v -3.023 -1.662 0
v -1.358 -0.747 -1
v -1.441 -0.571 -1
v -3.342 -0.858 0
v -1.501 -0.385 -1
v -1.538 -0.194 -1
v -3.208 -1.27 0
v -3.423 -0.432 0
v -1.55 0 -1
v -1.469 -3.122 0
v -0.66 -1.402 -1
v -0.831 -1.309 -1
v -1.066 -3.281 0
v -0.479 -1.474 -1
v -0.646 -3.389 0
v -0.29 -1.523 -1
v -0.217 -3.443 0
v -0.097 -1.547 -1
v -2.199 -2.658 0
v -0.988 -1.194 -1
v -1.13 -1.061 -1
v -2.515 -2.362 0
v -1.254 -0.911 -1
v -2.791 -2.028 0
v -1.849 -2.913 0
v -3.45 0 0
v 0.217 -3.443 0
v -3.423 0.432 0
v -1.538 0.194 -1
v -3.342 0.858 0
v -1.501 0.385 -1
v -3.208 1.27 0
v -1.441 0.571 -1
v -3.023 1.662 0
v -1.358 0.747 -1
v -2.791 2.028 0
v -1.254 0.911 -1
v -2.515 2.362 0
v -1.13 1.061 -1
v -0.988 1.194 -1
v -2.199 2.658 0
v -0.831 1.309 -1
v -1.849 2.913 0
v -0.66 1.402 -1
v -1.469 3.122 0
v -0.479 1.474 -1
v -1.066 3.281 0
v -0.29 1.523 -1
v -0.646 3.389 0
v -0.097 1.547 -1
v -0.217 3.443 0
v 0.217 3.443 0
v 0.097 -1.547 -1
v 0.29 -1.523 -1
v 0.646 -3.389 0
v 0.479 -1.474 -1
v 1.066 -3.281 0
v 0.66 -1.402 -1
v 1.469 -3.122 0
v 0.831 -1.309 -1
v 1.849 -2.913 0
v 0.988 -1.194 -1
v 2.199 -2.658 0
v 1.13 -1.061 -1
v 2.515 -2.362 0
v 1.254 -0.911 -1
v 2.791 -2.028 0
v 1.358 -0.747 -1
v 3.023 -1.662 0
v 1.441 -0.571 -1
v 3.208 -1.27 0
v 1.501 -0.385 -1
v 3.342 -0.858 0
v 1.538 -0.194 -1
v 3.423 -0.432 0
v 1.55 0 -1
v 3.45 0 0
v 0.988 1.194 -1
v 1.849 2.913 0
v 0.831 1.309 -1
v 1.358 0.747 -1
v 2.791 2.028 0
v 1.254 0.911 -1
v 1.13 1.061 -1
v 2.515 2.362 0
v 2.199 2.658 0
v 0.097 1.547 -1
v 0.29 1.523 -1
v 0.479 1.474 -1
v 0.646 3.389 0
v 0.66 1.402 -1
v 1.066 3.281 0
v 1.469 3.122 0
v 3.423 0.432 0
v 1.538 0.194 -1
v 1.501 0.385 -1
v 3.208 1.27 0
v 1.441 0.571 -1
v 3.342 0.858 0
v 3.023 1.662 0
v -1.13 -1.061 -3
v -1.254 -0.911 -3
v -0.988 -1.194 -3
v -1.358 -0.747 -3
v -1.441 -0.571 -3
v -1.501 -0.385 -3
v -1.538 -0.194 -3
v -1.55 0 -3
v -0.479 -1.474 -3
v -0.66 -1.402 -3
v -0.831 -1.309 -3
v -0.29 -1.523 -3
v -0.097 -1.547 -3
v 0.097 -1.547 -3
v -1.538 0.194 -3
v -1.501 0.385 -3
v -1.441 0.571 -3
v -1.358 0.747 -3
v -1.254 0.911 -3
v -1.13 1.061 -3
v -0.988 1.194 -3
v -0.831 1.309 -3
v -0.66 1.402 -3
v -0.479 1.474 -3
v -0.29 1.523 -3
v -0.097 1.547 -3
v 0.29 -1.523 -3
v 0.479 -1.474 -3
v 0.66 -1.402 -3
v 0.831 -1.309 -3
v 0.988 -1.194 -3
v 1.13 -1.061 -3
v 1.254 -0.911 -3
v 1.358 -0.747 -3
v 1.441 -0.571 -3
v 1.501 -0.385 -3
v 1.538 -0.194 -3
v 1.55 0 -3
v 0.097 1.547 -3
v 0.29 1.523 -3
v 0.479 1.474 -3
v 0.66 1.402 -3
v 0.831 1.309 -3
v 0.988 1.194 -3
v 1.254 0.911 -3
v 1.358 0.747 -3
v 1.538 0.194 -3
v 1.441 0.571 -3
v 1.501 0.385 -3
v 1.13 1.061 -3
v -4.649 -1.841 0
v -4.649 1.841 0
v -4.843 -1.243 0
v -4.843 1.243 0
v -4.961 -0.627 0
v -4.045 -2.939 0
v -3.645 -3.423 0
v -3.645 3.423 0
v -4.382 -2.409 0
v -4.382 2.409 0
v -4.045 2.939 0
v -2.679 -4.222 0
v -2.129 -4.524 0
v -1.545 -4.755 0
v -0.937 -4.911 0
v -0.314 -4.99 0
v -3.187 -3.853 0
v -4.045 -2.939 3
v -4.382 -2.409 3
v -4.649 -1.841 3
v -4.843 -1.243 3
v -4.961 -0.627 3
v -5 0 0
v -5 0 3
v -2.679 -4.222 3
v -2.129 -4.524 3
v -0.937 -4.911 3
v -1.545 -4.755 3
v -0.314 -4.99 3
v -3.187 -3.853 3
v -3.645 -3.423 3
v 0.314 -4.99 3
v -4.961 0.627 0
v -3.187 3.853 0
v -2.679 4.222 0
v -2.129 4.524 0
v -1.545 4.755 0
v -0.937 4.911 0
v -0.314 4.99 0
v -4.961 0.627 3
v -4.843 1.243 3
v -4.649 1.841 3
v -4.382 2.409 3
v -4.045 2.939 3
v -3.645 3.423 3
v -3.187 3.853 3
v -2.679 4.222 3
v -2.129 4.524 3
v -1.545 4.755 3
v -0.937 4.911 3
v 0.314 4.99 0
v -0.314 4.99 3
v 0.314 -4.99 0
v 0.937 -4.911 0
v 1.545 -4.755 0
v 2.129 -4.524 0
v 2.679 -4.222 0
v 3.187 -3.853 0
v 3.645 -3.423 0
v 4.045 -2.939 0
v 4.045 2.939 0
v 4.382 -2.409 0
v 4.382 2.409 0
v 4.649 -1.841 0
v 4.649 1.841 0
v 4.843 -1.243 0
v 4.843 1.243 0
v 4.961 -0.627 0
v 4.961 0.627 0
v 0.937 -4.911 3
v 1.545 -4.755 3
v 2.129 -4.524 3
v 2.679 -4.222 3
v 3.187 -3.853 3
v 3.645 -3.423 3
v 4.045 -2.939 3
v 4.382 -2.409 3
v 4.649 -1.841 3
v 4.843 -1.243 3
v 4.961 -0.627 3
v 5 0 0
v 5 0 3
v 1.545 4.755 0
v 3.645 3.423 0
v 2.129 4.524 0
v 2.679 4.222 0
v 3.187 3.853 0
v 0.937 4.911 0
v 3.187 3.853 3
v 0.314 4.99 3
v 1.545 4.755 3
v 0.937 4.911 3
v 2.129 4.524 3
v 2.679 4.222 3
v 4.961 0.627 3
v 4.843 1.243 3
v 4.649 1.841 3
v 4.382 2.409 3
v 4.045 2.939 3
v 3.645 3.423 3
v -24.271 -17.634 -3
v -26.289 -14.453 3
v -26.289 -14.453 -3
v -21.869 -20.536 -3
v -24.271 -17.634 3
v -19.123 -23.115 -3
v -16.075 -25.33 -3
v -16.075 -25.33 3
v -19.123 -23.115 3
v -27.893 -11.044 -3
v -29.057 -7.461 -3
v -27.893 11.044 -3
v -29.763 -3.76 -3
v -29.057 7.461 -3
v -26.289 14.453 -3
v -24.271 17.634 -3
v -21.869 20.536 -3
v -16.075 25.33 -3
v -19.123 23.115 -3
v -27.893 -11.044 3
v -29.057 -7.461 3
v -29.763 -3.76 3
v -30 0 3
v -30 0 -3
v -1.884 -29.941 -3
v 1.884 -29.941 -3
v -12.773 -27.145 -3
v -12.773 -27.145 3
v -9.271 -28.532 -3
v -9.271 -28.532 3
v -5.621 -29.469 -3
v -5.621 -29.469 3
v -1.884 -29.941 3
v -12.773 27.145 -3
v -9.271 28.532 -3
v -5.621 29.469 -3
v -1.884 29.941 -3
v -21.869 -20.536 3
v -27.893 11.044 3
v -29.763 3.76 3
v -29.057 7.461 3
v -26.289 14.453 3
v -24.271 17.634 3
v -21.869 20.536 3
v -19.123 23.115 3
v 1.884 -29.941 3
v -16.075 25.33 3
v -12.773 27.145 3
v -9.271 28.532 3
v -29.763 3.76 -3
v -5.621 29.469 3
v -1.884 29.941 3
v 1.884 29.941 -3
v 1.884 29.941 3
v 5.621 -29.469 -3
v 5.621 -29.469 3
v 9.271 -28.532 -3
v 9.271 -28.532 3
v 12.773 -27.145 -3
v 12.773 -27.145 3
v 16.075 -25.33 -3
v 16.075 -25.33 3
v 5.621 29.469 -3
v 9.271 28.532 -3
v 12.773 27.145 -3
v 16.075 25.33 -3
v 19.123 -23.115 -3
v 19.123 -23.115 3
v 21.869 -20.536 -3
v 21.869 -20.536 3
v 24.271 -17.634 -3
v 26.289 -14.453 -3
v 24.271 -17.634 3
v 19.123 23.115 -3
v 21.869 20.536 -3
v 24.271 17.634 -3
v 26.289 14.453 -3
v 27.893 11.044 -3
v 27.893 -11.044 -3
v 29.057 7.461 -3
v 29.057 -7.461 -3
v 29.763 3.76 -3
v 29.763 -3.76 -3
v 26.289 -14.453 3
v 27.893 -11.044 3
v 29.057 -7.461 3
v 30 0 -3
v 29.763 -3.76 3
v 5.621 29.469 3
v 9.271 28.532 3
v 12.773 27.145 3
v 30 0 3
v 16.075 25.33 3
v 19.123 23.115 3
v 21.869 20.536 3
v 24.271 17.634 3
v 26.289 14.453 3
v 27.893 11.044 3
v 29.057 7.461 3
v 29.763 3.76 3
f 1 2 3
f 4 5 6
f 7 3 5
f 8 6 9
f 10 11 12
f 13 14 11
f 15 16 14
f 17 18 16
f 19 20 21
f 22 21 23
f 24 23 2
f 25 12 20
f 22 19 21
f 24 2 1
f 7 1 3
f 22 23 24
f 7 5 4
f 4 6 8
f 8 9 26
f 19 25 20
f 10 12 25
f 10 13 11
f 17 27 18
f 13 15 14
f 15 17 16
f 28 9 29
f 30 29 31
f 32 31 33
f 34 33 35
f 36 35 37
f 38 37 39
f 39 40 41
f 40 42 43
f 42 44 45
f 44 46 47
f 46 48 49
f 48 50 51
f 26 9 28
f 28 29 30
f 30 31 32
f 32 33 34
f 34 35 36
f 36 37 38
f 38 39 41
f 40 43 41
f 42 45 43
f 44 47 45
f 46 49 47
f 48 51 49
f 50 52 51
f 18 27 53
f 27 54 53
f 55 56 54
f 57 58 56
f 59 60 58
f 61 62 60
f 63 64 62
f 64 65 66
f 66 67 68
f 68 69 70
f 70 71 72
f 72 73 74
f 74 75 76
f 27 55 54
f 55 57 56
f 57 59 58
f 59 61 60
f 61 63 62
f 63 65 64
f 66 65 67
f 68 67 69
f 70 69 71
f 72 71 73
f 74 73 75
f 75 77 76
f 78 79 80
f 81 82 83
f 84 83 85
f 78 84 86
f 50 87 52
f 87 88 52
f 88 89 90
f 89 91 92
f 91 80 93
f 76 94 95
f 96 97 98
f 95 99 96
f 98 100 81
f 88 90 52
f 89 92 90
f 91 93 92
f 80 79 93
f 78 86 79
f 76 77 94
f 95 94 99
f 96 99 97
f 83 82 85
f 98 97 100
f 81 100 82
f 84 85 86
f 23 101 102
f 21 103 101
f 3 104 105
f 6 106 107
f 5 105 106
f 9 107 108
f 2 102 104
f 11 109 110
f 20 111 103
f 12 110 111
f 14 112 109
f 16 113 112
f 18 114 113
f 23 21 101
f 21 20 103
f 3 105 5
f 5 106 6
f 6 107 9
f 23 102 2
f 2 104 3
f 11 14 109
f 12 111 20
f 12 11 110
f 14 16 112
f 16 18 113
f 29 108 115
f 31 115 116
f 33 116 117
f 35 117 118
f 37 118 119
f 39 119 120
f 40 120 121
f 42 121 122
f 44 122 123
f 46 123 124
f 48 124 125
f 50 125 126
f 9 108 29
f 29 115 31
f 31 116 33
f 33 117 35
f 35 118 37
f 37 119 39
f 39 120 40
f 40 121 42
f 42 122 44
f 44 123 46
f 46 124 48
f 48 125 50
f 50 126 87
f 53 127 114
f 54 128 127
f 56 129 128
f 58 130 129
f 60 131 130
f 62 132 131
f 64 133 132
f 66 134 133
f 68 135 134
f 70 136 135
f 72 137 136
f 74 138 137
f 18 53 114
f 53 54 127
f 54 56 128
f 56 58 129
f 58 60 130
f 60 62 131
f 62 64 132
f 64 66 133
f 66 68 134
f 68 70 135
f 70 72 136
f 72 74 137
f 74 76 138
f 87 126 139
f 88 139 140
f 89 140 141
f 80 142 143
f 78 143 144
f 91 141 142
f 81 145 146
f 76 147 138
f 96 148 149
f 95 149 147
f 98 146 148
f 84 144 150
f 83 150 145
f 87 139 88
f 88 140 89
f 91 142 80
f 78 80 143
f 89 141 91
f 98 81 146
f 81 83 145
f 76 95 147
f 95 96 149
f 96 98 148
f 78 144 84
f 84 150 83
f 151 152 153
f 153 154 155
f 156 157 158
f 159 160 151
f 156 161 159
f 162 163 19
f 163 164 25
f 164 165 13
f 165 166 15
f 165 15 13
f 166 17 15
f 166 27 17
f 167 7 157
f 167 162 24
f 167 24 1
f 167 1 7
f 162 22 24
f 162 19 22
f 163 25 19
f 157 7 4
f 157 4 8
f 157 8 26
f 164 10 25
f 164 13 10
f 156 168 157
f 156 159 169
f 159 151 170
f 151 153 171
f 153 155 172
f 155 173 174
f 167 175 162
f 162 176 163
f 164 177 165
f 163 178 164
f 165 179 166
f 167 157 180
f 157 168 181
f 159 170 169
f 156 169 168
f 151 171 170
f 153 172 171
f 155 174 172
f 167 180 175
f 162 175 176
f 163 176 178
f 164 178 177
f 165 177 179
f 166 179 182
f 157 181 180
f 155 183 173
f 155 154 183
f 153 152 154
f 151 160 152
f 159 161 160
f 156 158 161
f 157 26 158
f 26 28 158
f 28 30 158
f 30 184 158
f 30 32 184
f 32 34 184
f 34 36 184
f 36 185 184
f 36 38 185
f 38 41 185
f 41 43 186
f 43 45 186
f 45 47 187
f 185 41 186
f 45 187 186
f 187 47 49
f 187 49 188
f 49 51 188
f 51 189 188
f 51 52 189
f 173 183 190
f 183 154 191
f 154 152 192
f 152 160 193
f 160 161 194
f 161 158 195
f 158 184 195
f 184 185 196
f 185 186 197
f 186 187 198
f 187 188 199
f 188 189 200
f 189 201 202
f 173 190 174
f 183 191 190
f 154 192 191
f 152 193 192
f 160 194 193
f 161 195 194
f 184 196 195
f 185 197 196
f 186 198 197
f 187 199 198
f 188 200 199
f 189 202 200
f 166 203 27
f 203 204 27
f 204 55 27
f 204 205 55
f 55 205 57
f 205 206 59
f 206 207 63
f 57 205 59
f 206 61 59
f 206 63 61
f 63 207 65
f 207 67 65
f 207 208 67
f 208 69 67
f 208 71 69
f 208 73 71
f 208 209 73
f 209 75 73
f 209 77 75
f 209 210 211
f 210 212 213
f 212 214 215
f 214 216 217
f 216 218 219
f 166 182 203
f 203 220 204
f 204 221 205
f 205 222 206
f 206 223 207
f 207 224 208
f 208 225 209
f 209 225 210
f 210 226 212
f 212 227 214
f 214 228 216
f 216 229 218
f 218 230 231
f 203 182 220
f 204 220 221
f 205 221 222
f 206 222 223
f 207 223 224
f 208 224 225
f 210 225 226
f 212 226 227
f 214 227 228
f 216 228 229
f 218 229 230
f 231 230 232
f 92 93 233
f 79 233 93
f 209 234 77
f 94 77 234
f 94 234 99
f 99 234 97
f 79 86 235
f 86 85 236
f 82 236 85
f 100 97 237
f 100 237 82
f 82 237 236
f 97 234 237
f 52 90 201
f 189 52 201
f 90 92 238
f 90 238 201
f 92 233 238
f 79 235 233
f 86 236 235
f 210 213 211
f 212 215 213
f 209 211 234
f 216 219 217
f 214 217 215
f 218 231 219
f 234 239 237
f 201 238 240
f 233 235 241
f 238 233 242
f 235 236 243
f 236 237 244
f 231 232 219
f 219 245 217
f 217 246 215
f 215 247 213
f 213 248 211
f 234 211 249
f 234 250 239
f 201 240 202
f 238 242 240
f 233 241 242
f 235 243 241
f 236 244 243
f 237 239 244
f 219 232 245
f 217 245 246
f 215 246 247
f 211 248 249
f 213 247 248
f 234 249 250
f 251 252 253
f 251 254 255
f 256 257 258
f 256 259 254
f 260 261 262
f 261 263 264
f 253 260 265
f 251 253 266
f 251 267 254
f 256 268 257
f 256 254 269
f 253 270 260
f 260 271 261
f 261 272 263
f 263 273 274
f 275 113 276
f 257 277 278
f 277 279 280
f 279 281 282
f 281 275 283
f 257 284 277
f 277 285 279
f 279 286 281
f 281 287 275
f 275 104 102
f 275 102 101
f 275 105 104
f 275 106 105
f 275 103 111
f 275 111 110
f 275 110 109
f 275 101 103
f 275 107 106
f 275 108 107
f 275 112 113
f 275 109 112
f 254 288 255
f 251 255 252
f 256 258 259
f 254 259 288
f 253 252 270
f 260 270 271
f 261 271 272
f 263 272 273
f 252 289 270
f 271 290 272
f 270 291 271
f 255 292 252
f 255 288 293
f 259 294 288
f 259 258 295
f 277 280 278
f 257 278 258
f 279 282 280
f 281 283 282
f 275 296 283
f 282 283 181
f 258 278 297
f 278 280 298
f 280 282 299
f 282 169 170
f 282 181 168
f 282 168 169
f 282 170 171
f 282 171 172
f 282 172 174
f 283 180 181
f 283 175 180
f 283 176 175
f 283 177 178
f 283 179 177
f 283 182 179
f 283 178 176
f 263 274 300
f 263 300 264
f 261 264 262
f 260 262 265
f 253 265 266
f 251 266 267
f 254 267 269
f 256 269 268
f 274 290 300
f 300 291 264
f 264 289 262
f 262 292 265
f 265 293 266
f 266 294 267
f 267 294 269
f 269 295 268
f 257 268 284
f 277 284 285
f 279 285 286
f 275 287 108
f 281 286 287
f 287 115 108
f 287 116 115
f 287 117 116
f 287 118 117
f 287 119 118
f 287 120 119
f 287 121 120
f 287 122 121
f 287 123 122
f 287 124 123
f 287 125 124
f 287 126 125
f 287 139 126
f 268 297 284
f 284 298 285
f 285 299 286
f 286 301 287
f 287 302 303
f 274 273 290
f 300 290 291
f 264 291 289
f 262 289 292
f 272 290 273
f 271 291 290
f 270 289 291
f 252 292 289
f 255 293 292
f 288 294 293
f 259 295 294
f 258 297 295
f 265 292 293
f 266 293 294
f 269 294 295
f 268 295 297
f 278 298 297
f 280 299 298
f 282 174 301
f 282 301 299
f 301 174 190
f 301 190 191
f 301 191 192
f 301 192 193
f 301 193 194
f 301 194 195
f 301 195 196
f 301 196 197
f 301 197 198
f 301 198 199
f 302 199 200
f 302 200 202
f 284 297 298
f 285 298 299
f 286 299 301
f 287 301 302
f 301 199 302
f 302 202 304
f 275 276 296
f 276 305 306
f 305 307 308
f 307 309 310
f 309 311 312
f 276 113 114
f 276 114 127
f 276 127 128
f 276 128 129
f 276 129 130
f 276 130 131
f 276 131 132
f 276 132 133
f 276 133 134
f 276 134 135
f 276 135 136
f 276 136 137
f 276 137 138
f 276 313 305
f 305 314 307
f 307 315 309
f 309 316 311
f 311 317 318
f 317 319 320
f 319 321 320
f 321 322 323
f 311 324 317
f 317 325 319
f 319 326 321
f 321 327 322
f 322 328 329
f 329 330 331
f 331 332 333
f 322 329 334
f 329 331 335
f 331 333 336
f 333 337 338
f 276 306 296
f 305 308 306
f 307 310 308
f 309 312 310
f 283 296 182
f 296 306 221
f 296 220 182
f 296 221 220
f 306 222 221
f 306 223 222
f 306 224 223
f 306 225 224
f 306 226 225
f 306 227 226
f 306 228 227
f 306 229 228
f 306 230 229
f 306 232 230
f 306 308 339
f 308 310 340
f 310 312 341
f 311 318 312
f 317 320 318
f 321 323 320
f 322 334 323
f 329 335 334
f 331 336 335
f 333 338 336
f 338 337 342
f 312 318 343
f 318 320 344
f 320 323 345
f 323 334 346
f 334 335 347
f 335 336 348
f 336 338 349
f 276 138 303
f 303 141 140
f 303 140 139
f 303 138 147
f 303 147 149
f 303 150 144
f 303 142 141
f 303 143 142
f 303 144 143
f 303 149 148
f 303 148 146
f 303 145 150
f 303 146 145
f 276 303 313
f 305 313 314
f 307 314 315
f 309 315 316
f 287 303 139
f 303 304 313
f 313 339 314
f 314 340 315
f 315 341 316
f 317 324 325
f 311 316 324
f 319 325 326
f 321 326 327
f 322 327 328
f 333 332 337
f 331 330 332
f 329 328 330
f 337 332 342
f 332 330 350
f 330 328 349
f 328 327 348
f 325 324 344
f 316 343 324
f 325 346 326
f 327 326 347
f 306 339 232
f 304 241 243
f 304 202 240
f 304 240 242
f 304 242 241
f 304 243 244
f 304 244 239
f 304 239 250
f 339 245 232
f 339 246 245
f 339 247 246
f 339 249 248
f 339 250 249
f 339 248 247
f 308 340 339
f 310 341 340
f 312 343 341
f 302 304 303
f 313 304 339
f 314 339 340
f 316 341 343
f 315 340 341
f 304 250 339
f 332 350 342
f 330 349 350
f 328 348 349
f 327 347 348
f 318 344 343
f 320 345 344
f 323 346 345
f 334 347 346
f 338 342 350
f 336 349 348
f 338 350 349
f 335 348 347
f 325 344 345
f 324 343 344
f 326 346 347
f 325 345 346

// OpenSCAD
$fn = 50;


difference() {
	union() {
		translate(v = [0, 0, -3.0000000000]) {
			cylinder(h = 6, r = 30.0000000000);
		}
	}
	union() {
		translate(v = [0, 0, 0]) {
			rotate(a = [0, 0, 0]) {
				difference() {
					union() {
						translate(v = [0, 0, -6.0000000000]) {
							cylinder(h = 6, r = 1.2500000000);
						}
						translate(v = [0, 0, -1.0000000000]) {
							cylinder(h = 1.0000000000, r1 = 1.5500000000, r2 = 3.4500000000);
						}
						translate(v = [0, 0, -6.0000000000]) {
							cylinder(h = 6, r = 1.5500000000);
						}
						translate(v = [0, 0, -6.0000000000]) {
							cylinder(h = 6, r = 1.2500000000);
						}
					}
					union();
				}
			}
		}
		#cylinder(h = 3, r = 5.0000000000);
	}
}
